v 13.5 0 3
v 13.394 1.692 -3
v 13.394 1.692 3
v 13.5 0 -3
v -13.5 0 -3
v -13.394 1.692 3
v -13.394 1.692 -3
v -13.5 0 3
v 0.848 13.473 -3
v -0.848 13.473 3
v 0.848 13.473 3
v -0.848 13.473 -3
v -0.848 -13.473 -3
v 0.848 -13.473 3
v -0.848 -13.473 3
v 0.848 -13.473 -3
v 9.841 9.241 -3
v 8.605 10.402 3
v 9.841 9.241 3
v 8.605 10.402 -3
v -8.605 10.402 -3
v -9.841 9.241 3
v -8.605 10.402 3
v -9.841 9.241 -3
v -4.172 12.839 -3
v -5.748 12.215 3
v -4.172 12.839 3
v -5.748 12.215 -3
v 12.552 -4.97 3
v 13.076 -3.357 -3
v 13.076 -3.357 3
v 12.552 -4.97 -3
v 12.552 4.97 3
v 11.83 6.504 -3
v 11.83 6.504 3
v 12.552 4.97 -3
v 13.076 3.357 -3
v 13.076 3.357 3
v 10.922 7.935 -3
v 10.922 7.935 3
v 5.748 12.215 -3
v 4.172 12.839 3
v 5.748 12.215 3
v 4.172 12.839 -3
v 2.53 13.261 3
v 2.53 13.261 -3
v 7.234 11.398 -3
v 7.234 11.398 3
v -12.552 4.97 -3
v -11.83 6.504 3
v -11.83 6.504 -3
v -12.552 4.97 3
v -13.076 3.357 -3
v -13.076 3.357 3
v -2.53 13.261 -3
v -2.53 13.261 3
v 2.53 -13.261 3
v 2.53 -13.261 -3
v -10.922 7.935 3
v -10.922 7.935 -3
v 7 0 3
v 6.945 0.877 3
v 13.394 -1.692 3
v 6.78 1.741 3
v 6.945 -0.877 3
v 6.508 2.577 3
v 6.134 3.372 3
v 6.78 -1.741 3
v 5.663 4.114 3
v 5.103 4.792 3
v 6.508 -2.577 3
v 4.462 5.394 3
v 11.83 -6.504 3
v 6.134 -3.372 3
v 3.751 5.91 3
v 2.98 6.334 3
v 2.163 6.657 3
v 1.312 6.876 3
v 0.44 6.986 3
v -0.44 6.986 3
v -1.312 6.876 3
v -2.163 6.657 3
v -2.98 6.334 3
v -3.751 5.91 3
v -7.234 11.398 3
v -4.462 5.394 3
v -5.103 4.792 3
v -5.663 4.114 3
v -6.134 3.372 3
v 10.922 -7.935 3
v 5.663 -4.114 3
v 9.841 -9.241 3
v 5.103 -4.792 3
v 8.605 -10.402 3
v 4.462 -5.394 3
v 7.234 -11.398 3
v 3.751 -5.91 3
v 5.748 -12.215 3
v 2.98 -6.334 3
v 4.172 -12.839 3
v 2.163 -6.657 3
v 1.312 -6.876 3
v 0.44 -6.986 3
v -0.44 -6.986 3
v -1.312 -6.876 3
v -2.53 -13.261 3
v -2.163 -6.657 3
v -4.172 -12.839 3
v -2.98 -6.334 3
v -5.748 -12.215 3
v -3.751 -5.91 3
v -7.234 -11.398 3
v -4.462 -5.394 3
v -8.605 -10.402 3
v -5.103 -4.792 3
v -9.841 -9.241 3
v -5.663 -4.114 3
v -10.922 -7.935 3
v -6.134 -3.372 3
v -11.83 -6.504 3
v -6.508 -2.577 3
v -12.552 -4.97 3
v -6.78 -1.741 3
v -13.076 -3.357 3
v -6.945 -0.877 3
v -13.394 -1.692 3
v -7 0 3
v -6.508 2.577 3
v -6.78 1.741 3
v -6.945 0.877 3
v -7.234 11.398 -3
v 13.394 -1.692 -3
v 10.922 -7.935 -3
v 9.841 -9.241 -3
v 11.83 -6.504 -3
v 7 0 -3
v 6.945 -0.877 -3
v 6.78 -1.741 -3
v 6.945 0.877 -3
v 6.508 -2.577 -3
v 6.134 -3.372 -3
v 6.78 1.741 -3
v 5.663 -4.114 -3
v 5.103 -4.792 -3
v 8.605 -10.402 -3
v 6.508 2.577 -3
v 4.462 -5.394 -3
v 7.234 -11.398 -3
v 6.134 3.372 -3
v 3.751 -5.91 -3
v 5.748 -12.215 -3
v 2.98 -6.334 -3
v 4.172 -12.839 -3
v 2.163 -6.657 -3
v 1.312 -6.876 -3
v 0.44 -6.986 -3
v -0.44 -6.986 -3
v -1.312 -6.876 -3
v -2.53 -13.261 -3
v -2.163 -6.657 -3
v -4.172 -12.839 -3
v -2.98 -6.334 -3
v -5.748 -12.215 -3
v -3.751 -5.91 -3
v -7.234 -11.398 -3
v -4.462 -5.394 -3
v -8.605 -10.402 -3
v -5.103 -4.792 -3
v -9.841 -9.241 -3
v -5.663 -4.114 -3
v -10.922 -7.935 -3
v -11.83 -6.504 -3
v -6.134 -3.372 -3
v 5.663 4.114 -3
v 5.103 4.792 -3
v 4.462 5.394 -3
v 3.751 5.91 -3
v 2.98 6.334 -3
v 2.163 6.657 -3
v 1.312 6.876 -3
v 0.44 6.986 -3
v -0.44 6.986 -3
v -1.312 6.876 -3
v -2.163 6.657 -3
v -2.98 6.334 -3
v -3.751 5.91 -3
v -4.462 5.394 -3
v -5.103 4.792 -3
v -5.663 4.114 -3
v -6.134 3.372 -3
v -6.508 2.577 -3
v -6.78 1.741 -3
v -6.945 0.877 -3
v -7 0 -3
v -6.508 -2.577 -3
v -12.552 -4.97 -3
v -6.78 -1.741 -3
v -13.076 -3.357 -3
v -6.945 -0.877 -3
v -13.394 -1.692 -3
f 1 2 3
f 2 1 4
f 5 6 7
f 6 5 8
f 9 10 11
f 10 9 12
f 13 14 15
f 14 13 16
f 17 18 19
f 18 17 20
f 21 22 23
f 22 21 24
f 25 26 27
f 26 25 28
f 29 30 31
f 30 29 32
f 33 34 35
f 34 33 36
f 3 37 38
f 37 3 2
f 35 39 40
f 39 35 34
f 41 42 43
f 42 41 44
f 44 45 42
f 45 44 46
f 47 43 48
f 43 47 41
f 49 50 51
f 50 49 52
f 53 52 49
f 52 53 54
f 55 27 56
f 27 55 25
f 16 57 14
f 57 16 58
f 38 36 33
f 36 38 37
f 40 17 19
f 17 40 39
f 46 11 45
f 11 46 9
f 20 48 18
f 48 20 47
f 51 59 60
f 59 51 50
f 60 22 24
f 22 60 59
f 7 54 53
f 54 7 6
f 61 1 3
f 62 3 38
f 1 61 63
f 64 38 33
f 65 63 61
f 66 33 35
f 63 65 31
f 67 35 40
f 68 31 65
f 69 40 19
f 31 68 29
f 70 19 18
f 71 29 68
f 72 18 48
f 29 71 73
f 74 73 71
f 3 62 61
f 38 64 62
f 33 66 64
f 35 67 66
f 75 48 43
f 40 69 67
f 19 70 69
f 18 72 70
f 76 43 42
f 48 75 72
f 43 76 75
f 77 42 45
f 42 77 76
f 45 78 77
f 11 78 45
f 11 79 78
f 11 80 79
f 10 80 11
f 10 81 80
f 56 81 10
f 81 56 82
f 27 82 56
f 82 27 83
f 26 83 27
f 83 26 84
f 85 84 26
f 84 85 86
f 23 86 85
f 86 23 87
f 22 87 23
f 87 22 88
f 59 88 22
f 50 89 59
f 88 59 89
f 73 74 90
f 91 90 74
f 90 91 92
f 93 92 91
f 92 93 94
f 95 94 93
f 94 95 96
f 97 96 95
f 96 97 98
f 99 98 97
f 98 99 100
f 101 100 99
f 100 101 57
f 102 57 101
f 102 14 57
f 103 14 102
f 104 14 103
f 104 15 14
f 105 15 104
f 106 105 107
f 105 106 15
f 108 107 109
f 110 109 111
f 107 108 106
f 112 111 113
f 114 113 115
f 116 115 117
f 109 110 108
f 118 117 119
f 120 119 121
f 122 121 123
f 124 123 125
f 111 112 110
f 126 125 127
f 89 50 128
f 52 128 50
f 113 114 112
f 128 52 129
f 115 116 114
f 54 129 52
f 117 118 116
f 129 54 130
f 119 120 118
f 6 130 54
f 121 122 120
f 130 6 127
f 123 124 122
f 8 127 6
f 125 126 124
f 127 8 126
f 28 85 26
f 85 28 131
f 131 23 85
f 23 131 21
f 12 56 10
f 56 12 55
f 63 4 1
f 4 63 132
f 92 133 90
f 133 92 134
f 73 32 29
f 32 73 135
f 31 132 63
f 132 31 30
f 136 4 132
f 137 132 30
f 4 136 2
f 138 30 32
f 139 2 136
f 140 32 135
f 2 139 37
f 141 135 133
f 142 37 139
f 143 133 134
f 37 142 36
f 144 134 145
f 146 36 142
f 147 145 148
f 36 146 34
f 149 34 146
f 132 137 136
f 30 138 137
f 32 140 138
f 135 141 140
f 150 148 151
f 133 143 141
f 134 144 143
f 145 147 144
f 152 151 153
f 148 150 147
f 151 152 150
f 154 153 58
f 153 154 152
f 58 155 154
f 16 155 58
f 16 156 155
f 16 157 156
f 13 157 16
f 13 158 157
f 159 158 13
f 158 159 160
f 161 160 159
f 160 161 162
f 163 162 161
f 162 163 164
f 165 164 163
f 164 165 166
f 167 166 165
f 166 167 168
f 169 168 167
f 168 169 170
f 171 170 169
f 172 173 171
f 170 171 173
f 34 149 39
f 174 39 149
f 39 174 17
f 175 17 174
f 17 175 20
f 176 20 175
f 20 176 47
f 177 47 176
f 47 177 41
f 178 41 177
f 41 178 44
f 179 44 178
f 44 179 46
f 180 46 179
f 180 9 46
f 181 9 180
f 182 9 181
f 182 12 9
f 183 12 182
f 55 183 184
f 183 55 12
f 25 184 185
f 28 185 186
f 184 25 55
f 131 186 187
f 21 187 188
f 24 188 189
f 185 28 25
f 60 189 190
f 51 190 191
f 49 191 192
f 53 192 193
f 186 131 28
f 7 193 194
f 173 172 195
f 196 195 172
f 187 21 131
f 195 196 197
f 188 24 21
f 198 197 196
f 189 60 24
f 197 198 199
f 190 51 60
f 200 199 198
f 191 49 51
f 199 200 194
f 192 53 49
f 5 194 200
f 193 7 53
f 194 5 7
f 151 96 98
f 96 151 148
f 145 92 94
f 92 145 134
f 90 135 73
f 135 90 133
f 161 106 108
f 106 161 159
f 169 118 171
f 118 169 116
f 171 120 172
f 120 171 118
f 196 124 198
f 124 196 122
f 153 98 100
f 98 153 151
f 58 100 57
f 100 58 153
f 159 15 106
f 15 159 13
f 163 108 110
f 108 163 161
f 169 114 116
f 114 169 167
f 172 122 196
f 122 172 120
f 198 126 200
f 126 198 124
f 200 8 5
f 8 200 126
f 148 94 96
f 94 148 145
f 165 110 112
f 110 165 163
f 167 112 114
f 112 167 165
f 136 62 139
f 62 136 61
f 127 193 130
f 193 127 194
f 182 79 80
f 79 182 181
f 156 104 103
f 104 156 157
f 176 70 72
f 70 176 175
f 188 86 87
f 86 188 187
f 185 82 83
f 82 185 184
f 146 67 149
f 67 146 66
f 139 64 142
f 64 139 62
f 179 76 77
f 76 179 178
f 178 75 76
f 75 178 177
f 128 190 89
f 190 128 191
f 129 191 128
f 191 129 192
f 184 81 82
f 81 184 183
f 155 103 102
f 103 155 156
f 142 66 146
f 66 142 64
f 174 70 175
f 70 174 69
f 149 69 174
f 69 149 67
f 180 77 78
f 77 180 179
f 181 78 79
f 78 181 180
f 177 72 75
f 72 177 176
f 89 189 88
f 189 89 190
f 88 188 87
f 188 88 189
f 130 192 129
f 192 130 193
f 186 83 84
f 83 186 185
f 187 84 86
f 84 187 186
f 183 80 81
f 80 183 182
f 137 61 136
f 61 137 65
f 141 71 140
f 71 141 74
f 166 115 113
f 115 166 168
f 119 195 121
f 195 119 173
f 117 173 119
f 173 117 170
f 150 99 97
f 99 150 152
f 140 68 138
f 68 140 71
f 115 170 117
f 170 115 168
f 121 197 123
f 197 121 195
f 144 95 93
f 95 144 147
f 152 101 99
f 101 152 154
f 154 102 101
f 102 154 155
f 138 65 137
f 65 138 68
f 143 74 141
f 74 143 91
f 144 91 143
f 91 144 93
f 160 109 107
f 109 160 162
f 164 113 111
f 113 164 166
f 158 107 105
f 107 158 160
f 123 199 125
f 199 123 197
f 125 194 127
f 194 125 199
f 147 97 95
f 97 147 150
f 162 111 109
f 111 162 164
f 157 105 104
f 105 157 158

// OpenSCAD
$fn = 50;


difference() {
	union() {
		translate(v = [0, 0, -3.0000000000]) {
			cylinder(h = 6, r = 13.5000000000);
		}
	}
	union() {
		translate(v = [0, 0, -100.0000000000]) {
			cylinder(h = 200, r = 7);
		}
	}
}
